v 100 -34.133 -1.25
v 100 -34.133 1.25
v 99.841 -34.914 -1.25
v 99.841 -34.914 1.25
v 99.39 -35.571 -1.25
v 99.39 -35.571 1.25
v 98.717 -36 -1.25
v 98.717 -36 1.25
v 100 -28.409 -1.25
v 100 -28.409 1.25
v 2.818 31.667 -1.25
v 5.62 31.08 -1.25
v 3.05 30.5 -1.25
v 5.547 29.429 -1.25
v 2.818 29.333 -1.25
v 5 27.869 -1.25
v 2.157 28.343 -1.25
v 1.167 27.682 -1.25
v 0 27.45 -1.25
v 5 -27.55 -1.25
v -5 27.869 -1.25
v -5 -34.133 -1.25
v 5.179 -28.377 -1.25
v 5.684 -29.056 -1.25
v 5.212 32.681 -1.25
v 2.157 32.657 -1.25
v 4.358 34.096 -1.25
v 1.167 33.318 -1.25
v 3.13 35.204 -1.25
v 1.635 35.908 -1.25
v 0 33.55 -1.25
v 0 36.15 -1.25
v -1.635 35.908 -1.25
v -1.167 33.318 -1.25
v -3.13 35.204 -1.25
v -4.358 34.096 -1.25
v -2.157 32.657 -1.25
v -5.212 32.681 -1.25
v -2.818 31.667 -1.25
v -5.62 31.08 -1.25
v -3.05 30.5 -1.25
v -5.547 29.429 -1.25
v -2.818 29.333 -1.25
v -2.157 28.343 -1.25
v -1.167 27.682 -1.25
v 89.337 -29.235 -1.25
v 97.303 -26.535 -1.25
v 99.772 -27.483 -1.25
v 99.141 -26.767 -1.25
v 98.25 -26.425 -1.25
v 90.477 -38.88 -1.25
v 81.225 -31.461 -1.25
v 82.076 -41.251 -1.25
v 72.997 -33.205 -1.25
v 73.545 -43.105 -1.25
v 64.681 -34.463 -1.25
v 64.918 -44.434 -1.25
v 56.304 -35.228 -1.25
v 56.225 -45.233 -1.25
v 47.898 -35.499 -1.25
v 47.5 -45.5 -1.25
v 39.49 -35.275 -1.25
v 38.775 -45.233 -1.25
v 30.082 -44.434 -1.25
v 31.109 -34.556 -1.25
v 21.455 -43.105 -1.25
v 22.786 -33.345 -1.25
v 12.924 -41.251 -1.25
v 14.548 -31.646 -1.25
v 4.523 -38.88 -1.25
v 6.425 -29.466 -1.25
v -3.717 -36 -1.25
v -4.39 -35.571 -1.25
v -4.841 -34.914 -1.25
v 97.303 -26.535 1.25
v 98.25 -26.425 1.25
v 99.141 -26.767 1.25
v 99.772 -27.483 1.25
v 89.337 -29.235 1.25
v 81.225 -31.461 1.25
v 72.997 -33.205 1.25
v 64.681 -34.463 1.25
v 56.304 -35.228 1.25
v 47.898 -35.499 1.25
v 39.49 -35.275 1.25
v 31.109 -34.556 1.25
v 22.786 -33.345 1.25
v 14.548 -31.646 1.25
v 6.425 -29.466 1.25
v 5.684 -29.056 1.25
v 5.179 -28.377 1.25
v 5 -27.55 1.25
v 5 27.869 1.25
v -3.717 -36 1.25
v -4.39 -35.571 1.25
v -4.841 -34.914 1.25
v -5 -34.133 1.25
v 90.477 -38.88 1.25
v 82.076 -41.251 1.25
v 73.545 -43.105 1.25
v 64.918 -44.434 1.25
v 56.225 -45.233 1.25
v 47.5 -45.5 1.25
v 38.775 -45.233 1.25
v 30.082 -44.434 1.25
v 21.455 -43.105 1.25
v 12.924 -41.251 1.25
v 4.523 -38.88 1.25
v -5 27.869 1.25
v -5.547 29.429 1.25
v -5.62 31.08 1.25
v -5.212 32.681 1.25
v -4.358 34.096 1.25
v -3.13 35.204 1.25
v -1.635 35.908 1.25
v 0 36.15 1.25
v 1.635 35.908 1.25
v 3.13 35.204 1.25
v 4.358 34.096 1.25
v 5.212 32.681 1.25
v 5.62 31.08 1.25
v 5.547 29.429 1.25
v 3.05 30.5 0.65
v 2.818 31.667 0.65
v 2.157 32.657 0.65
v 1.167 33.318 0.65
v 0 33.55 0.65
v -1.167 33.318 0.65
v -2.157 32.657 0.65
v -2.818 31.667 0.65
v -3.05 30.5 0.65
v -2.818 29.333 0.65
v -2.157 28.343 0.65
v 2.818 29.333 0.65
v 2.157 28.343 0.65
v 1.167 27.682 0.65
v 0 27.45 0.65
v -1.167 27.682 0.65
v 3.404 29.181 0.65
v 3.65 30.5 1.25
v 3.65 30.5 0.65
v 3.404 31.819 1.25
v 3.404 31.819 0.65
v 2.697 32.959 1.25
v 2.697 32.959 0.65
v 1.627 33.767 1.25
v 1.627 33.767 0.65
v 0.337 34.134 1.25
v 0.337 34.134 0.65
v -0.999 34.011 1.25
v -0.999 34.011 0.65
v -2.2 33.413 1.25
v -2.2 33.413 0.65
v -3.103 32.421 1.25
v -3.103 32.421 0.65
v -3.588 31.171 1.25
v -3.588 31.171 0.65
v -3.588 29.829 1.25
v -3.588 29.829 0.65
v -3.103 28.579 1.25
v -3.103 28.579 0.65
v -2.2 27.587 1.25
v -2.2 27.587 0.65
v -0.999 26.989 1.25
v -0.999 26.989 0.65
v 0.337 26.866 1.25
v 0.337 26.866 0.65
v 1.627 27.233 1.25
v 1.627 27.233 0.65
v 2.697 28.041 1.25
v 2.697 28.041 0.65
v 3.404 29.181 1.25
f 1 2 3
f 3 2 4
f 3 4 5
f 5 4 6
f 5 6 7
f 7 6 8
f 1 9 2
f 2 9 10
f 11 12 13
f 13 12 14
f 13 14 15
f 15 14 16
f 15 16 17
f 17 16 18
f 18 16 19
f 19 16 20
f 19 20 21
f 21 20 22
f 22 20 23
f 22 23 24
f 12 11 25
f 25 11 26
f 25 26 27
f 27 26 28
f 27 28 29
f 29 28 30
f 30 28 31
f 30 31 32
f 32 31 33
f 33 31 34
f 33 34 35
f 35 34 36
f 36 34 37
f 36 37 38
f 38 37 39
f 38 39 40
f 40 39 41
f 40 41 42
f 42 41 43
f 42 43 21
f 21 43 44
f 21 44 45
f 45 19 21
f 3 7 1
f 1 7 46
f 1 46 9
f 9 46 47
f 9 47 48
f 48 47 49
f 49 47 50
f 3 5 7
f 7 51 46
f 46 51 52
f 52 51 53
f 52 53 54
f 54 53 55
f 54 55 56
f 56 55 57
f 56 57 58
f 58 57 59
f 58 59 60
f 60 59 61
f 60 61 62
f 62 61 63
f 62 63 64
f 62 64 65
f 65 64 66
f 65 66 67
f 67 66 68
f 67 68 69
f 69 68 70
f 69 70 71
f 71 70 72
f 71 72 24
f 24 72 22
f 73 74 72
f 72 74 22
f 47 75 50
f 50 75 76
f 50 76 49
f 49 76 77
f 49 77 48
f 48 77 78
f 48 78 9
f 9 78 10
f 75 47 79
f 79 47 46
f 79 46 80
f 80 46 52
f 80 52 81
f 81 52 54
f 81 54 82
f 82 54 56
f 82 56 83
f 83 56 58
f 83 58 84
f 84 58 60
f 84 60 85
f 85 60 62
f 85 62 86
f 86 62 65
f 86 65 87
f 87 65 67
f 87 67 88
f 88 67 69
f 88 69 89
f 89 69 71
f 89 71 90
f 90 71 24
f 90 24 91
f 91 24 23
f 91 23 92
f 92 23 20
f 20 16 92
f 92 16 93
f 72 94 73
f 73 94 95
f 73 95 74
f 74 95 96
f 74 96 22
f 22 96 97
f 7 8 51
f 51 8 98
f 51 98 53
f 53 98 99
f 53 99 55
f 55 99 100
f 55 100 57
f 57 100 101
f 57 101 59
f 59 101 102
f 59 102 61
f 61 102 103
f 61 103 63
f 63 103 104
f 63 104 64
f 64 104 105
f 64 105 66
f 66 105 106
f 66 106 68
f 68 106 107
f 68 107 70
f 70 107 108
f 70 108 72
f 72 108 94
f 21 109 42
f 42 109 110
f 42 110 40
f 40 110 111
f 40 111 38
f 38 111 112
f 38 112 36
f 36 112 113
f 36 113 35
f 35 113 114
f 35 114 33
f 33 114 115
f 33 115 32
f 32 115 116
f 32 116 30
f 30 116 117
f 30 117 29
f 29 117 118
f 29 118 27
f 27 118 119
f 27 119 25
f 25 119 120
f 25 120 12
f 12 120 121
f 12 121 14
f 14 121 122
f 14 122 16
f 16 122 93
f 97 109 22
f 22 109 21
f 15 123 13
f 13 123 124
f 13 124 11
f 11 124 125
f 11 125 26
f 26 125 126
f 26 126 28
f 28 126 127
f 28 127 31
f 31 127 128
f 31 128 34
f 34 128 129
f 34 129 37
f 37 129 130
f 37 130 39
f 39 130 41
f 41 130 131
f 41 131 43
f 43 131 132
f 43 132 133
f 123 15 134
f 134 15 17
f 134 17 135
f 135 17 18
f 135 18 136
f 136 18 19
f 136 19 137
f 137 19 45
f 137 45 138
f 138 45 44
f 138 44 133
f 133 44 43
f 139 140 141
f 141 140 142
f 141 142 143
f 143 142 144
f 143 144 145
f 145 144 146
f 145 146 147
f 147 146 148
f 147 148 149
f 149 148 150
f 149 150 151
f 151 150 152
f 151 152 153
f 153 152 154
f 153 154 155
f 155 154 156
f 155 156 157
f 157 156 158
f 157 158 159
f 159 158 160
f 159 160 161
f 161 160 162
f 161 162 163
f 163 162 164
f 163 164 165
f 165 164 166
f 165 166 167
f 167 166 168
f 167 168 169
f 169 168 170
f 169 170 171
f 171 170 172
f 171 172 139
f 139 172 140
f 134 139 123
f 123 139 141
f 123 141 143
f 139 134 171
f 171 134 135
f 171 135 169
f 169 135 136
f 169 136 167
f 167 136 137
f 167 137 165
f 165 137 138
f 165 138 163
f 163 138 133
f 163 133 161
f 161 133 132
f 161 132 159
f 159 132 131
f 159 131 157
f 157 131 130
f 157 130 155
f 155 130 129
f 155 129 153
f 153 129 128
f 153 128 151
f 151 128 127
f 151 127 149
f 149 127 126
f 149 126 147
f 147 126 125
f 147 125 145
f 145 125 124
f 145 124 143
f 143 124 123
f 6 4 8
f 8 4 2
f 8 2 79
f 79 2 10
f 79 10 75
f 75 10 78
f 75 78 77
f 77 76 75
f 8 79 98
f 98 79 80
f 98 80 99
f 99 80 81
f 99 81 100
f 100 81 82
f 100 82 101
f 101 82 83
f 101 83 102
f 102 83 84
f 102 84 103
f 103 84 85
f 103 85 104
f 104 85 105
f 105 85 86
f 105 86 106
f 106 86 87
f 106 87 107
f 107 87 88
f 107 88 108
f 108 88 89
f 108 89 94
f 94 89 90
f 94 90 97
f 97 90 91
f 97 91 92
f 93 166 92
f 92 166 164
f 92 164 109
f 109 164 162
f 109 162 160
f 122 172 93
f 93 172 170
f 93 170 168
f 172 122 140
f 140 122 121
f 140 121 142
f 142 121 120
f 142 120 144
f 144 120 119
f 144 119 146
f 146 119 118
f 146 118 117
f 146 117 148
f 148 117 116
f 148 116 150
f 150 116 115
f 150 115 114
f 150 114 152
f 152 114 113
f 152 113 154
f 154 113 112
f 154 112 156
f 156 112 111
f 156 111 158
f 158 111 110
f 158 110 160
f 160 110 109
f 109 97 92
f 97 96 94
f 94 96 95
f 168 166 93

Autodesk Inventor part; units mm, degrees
ref_plane "YZ Plane" through (0, 0, 0) normal (1, 0, 0) x (0, 1, 0)
ref_plane "XZ Plane" through (0, 0, 0) normal (0, 1, 0) x (-1, 0, 0)
ref_plane "XY Plane" through (0, 0, 0) normal (0, 0, 1) x (1, 0, 0)
sketch "スケッチ1" plane through (0, 0, 0) normal (0, 0, 1) x (1, 0, 0)
  line L0 (-5, -35.5) -> (5, -35.5)
  line L1 (5, -35.5) -> (5, 35.5)
  line L2 (5, 35.5) -> (-5, 35.5)
  line L3 (-5, 35.5) -> (-5, -35.5)
  line L4 (-5, -35.5) -> (5, 35.5) construction
  line L5 (5, -35.5) -> (-5, 35.5) construction
  line L6 (-5, -35.5) -> (100, -35.5)
  line L7 (100, -35.5) -> (100, -25.5)
  line L8 (100, -25.5) -> (-5, -25.5)
  line L9 (-5, -25.5) -> (-5, -35.5)
  line L10 (47.5, -35.5) -> (47.5, -45.5)
  arc A0 (-5, -25.5) -> (100, -25.5) centre (47.5, 107.3125) ccw
  arc A1 (-5, -35.5) -> (100, -35.5) centre (47.5, 97.3125) ccw
  point P0 (0, 0)
  point P1 (5, -29.0296)
  dimension "d0" = 10
  dimension "d1" = 71
  dimension "d2" = 105
  dimension "d3" = 10
  dimension "d4" = 10
extrude "押し出し1" add sketch "スケッチ1" along normal mid plane 2.5 contours L3 A0 L1 L0 | L0 L6 L10 A1 | L1 A0 L6 | L3 L2 L1 L8 | L8 L1 A0 | L10 L6 A1 | A0 L7 L6 picked at (-0.5654, -25.9196)
sketch "スケッチ2" plane through (0, 0, 1.25) normal (0, 0, 1) x (1, 0, 0)
  line L0 (5, 35.5) -> (-5, 35.5) projected
  line L1 (5, -29.0296) -> (5, 35.5) projected
  circle A0 centre (0, 30.5) radius 3.05
  circle A1 centre (0, 30.5) radius 3.65
  point P0 (0, 0)
  dimension "d7" = 5
  dimension "d8" = 5
  dimension "d9" = 6.1
  dimension "d10" = 7.3
extrude "押し出し2" cut sketch "スケッチ2" against normal blind 0.6 contours A0 | A1
sketch "スケッチ3" plane through (0, 30.5, 0.65) normal (0, 0, 1) x (1, 0, 0)
  circle A0 centre (0, 0) radius 3.05
  point P0 (0, -30.5)
  dimension "d13" = 6.1
extrude "押し出し3" cut sketch "スケッチ3" against normal blind 1.9
sketch "スケッチ6" plane through (0, 0, 1.25) normal (0, 0, 1) x (1, 0, 0)
  circle A0 centre (0, 30.5) radius 3.65 projected
  line L0 (-5, 35.5) -> (-5, -35.5) projected
  arc A1 (-5, -35.5) -> (100, -35.5) centre (47.5, 97.3125) ccw projected
  line L1 (100, -35.5) -> (100, -25.5) projected
  arc A2 (5, -29.0296) -> (100, -25.5) centre (47.5, 107.3125) ccw projected
  line L2 (5, -29.0296) -> (5, 35.5) projected
  line L3 (5, 35.5) -> (-5, 35.5) projected
  circle A3 centre (0, 30.5) radius 5.65
  point P0 (0, 0)
  point P1 (-5, 27.8689)
  point P2 (-5, 33.1311)
  point P3 (-2.6311, 35.5)
  point P4 (2.6311, 35.5)
  point P5 (5, 33.1311)
  point P6 (5, 27.8689)
  dimension "d18" = 11.3
extrude "押し出し5" add sketch "スケッチ6" against normal blind 2.5 contours L0 A3 | A3 L3 | L2 A3
sketch "スケッチ7" plane through (0, 0, 1.25) normal (0, 0, 1) x (1, 0, 0)
  circle A0 centre (0, 30.5) radius 3.65 projected
  line L0 (-5, 35.5) -> (-5, 33.1311) projected
  arc A1 (-5, 33.1311) -> (-5, 27.8689) centre (0, 30.5) ccw projected
  line L1 (-5, 27.8689) -> (-5, -35.5) projected
  arc A2 (-5, -35.5) -> (100, -35.5) centre (47.5, 97.3125) ccw projected
  line L2 (100, -35.5) -> (100, -25.5) projected
  arc A3 (5, -29.0296) -> (100, -25.5) centre (47.5, 107.3125) ccw projected
  line L3 (5, -29.0296) -> (5, 27.8689) projected
  arc A4 (5, 27.8689) -> (5, 33.1311) centre (0, 30.5) ccw projected
  line L4 (5, 33.1311) -> (5, 35.5) projected
  line L5 (5, 35.5) -> (2.6311, 35.5) projected
  arc A5 (2.6311, 35.5) -> (-2.6311, 35.5) centre (0, 30.5) ccw projected
  line L6 (-2.6311, 35.5) -> (-5, 35.5) projected
  circle A6 centre (0, 30.5) radius 5.65
  point P0 (0, 0)
  point P1 (-2.6311, 35.5)
  point P2 (2.6311, 35.5)
extrude "押し出し6" cut sketch "スケッチ7" against normal blind 2.5 contours L6 A6 L0 | L5 L4 A6
fillet "フィレット1" radius 2 4 edges at (-5, -35.5, 0) (5, -29.0296, 0) (100, -25.5, 0) (100, -35.5, 0)
properties part number "指_中"
